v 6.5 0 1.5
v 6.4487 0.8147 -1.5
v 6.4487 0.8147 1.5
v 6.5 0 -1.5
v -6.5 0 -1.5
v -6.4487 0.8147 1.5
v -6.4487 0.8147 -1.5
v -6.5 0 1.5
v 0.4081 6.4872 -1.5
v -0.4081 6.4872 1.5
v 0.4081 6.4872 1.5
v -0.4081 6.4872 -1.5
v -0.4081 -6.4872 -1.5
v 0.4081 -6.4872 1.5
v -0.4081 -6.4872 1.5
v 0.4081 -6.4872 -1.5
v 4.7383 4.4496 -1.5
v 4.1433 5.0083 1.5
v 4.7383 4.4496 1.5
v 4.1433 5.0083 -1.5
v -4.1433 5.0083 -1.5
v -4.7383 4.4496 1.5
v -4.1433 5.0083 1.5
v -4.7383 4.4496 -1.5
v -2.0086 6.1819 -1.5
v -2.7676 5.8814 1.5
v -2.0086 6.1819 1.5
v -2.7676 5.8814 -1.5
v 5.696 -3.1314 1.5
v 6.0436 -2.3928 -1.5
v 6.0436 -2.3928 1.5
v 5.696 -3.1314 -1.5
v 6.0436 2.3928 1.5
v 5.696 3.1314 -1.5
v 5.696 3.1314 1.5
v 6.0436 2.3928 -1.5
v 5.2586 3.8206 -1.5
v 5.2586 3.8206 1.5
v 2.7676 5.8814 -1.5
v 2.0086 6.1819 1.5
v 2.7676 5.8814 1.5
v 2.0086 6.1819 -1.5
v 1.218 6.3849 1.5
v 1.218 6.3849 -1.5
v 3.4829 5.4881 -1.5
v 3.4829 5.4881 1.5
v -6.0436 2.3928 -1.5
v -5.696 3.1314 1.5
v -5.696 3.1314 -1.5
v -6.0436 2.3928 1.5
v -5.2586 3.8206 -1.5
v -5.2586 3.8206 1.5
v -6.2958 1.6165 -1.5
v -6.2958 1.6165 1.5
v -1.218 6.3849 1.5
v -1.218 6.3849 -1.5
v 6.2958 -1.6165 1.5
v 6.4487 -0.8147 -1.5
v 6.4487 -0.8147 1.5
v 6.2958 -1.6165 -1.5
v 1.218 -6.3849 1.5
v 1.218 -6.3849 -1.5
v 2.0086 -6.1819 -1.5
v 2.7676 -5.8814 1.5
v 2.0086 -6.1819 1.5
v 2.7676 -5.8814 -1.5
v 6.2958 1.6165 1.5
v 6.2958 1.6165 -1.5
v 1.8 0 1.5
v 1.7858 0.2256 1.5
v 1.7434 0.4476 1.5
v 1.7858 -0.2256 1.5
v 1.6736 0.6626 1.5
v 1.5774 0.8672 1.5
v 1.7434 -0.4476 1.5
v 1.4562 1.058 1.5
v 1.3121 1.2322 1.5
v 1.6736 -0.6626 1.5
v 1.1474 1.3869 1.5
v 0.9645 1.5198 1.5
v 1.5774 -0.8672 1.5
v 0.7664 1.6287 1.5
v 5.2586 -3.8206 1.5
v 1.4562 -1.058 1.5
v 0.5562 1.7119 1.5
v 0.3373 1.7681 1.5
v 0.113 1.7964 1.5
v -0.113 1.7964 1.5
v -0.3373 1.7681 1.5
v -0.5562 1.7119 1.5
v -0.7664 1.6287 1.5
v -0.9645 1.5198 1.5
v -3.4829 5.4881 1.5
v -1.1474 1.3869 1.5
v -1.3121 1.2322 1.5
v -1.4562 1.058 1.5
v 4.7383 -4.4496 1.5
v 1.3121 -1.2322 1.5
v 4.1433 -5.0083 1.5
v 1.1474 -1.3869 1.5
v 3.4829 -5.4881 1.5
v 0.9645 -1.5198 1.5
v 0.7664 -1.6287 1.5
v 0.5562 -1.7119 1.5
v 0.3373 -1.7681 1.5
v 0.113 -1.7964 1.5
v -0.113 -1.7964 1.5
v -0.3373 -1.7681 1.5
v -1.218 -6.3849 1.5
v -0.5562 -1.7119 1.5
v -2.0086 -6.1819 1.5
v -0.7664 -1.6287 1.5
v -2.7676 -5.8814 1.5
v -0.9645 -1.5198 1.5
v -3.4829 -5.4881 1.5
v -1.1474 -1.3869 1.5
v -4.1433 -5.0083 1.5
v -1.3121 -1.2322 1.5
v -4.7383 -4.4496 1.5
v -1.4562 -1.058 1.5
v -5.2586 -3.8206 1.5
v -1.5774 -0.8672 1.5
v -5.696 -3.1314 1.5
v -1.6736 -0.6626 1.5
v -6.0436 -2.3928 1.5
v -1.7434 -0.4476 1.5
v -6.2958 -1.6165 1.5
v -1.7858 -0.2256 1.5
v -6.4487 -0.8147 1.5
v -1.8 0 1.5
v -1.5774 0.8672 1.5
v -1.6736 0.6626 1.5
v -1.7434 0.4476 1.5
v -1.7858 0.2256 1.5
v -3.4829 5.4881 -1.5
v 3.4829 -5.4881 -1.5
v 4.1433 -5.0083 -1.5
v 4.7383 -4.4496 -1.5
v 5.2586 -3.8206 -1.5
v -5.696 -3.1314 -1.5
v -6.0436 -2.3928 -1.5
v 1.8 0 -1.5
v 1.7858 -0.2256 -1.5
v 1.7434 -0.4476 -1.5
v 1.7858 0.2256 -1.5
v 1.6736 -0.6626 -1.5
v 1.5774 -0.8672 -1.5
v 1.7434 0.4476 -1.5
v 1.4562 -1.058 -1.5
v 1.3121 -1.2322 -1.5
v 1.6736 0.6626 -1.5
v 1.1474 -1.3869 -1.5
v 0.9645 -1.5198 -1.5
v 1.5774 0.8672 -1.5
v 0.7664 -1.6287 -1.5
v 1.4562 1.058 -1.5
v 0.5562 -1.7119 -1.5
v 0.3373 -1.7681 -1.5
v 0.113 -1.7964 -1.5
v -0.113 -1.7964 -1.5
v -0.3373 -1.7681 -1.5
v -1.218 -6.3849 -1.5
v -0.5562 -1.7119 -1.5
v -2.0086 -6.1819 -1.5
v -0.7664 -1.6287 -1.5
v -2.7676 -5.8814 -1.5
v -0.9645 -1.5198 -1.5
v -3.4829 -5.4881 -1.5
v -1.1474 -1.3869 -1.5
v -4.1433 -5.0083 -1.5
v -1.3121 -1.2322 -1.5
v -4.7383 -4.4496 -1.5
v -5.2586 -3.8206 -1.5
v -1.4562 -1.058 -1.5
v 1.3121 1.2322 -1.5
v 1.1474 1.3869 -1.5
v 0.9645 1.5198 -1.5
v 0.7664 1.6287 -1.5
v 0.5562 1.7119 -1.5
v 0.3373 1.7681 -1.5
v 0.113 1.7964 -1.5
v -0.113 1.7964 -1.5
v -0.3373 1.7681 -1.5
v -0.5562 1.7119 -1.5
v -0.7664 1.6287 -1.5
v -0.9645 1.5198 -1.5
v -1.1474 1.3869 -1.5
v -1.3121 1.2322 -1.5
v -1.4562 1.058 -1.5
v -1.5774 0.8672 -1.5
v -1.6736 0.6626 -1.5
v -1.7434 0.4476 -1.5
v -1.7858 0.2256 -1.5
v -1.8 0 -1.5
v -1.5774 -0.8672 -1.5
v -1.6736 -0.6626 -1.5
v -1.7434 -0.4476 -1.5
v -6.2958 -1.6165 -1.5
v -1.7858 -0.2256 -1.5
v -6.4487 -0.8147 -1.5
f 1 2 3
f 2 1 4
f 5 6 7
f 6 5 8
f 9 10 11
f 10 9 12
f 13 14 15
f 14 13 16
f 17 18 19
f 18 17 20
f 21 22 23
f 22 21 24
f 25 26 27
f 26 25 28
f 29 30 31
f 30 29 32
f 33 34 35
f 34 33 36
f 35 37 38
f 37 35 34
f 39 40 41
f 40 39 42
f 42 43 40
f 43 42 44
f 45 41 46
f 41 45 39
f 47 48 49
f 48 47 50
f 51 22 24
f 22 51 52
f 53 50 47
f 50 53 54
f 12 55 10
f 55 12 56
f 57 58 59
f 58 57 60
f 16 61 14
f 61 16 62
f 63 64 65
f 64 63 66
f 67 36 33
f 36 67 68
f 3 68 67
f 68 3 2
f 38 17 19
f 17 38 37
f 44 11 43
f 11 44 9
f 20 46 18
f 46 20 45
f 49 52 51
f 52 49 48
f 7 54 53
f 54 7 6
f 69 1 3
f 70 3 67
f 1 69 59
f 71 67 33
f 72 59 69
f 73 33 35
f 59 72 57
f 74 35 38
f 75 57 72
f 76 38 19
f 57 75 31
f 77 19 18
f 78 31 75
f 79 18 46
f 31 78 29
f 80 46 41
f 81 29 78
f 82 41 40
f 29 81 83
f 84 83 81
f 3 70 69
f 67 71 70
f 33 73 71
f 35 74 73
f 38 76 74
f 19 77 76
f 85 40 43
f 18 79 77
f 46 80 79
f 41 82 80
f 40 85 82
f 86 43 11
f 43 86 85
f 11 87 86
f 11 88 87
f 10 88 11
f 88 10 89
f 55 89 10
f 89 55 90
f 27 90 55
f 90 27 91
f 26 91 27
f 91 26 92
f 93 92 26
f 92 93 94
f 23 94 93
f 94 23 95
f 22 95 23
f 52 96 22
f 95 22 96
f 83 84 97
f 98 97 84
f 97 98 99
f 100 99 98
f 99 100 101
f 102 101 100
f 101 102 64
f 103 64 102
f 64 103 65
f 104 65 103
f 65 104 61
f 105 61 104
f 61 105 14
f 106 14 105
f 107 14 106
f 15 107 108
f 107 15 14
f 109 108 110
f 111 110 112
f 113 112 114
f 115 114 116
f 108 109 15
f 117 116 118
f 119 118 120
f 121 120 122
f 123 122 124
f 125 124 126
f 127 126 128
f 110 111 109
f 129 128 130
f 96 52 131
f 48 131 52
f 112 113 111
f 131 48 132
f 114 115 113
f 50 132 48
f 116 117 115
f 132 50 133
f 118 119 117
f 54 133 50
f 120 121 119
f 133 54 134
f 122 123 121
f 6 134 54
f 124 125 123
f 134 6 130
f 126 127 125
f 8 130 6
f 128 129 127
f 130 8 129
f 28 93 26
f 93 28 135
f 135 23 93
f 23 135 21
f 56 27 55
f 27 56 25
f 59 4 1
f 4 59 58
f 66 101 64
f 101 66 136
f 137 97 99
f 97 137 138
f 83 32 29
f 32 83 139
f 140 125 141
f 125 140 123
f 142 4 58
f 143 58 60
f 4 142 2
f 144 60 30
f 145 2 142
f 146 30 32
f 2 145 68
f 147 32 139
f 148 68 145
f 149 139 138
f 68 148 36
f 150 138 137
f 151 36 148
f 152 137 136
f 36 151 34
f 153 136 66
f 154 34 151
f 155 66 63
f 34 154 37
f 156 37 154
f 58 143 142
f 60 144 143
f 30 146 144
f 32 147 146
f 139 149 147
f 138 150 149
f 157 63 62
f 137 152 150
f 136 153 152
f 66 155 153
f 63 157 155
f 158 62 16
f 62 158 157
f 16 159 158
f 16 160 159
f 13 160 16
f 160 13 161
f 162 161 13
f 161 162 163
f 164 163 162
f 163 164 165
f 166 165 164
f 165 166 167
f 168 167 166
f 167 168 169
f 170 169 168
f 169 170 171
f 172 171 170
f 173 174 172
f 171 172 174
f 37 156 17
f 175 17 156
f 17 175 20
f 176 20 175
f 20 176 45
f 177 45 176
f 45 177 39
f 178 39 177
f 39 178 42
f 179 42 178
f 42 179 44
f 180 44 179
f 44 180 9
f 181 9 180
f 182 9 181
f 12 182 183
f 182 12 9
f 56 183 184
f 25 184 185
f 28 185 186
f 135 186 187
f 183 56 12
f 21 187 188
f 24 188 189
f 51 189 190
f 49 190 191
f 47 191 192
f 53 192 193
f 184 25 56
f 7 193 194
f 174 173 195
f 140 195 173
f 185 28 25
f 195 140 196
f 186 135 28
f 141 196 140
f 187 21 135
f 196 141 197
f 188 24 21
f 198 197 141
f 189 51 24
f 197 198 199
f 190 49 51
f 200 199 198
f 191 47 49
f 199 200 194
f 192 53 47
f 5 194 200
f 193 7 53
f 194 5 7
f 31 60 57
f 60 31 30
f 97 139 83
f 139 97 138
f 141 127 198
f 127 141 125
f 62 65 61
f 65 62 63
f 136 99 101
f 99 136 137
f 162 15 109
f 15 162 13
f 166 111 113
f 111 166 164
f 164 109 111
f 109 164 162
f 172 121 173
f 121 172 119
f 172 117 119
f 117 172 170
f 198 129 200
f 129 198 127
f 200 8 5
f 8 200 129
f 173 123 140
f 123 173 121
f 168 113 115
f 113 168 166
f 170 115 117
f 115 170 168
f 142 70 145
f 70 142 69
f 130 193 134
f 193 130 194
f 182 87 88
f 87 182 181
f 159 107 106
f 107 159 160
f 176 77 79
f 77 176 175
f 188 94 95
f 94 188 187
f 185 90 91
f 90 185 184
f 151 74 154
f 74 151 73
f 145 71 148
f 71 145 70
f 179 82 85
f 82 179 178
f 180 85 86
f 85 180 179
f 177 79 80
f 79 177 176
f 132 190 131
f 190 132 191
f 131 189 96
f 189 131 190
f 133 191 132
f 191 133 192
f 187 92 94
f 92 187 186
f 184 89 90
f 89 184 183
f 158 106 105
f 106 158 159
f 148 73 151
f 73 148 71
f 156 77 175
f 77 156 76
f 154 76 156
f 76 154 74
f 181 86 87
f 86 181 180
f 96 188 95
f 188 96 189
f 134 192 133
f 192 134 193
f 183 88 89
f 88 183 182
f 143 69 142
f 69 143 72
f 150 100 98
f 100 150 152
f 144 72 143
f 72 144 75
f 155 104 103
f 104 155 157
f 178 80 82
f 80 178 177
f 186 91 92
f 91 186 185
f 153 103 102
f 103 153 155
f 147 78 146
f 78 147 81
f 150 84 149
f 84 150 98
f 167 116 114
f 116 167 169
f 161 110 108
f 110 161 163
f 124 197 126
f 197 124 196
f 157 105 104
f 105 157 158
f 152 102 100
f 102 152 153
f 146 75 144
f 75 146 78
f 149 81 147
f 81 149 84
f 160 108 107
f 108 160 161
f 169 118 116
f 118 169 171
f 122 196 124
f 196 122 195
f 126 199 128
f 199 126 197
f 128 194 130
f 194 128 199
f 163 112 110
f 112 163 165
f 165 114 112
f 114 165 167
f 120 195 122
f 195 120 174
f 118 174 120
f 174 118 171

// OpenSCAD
$fn = 50;


difference() {
	union() {
		translate(v = [0, 0, -1.5000000000]) {
			cylinder(h = 3, r = 6.5000000000);
		}
	}
	union() {
		translate(v = [0, 0, -100.0000000000]) {
			cylinder(h = 200, r = 1.8000000000);
		}
	}
}
